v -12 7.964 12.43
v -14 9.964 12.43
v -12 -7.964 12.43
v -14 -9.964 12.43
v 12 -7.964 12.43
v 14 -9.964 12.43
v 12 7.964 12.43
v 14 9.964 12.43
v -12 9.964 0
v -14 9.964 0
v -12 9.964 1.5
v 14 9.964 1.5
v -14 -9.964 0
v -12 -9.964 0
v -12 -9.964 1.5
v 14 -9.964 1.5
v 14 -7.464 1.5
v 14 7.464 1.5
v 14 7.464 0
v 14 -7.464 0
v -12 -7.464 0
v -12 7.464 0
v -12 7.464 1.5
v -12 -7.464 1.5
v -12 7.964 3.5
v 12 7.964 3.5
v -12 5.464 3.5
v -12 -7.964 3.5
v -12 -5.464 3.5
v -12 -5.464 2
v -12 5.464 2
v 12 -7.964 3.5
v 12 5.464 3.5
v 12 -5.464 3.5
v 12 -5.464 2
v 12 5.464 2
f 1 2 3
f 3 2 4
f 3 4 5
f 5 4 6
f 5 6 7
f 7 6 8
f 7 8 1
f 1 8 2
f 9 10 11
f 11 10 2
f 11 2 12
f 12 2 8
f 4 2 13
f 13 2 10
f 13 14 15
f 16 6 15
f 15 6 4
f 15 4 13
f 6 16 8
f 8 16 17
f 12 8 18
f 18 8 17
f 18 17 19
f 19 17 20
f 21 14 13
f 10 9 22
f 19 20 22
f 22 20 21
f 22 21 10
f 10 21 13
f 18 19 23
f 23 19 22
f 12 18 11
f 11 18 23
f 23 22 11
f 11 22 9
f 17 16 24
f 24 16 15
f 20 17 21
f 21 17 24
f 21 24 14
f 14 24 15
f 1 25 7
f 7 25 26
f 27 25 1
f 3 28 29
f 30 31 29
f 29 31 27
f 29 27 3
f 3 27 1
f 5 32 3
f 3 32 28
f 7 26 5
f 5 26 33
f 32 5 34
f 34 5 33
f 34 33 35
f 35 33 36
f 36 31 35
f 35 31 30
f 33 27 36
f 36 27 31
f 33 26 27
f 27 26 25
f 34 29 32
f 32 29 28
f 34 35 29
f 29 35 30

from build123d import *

# Parameters (mm, degrees)
SKETCH2_W           = 19.9273
SKETCH2_H           = 28
BOSS_EXTRUDE1_DEPTH = 12.4298
SKETCH3_W           = 2.5
SKETCH3_H           = 1.5
CUT_EXTRUDE1_DEPTH  = 26
SHELL1_START        = -12
SHELL1_DEPTH        = 24


# Read off the part's stored shape, not the designer's step: Shell1
with BuildPart() as part:
    # Sketch2 → Boss-Extrude1 (new body)
    with BuildSketch(Plane(origin=(0, 0, 0), x_dir=(0, 1, 0), z_dir=(0, 0, 1))):
        Rectangle(SKETCH2_W, SKETCH2_H)
    extrude(amount=BOSS_EXTRUDE1_DEPTH)

    # Sketch3 → Cut-Extrude1 (cut)
    with BuildSketch(Plane.YZ.offset(14)):
        with Locations((-8.71365, 0.75)):
            Rectangle(SKETCH3_W, SKETCH3_H)
        with Locations((8.71365, 0.75)):
            Rectangle(SKETCH3_W, SKETCH3_H)
    extrude(amount=-CUT_EXTRUDE1_DEPTH, mode=Mode.SUBTRACT)

    # Shell1 outline → Shell1 (cut)
    with BuildSketch(Plane.YZ.offset(SHELL1_START)):
        Polygon((7.96365, 3.5), (7.96365, 12.4298), (-7.96365, 12.4298), (-7.96365, 3.5), (-5.46365, 3.5), (-5.46365, 2), (5.46365, 2), (5.46365, 3.5), align=None)
    extrude(amount=SHELL1_DEPTH, mode=Mode.SUBTRACT)


solid = part.part
